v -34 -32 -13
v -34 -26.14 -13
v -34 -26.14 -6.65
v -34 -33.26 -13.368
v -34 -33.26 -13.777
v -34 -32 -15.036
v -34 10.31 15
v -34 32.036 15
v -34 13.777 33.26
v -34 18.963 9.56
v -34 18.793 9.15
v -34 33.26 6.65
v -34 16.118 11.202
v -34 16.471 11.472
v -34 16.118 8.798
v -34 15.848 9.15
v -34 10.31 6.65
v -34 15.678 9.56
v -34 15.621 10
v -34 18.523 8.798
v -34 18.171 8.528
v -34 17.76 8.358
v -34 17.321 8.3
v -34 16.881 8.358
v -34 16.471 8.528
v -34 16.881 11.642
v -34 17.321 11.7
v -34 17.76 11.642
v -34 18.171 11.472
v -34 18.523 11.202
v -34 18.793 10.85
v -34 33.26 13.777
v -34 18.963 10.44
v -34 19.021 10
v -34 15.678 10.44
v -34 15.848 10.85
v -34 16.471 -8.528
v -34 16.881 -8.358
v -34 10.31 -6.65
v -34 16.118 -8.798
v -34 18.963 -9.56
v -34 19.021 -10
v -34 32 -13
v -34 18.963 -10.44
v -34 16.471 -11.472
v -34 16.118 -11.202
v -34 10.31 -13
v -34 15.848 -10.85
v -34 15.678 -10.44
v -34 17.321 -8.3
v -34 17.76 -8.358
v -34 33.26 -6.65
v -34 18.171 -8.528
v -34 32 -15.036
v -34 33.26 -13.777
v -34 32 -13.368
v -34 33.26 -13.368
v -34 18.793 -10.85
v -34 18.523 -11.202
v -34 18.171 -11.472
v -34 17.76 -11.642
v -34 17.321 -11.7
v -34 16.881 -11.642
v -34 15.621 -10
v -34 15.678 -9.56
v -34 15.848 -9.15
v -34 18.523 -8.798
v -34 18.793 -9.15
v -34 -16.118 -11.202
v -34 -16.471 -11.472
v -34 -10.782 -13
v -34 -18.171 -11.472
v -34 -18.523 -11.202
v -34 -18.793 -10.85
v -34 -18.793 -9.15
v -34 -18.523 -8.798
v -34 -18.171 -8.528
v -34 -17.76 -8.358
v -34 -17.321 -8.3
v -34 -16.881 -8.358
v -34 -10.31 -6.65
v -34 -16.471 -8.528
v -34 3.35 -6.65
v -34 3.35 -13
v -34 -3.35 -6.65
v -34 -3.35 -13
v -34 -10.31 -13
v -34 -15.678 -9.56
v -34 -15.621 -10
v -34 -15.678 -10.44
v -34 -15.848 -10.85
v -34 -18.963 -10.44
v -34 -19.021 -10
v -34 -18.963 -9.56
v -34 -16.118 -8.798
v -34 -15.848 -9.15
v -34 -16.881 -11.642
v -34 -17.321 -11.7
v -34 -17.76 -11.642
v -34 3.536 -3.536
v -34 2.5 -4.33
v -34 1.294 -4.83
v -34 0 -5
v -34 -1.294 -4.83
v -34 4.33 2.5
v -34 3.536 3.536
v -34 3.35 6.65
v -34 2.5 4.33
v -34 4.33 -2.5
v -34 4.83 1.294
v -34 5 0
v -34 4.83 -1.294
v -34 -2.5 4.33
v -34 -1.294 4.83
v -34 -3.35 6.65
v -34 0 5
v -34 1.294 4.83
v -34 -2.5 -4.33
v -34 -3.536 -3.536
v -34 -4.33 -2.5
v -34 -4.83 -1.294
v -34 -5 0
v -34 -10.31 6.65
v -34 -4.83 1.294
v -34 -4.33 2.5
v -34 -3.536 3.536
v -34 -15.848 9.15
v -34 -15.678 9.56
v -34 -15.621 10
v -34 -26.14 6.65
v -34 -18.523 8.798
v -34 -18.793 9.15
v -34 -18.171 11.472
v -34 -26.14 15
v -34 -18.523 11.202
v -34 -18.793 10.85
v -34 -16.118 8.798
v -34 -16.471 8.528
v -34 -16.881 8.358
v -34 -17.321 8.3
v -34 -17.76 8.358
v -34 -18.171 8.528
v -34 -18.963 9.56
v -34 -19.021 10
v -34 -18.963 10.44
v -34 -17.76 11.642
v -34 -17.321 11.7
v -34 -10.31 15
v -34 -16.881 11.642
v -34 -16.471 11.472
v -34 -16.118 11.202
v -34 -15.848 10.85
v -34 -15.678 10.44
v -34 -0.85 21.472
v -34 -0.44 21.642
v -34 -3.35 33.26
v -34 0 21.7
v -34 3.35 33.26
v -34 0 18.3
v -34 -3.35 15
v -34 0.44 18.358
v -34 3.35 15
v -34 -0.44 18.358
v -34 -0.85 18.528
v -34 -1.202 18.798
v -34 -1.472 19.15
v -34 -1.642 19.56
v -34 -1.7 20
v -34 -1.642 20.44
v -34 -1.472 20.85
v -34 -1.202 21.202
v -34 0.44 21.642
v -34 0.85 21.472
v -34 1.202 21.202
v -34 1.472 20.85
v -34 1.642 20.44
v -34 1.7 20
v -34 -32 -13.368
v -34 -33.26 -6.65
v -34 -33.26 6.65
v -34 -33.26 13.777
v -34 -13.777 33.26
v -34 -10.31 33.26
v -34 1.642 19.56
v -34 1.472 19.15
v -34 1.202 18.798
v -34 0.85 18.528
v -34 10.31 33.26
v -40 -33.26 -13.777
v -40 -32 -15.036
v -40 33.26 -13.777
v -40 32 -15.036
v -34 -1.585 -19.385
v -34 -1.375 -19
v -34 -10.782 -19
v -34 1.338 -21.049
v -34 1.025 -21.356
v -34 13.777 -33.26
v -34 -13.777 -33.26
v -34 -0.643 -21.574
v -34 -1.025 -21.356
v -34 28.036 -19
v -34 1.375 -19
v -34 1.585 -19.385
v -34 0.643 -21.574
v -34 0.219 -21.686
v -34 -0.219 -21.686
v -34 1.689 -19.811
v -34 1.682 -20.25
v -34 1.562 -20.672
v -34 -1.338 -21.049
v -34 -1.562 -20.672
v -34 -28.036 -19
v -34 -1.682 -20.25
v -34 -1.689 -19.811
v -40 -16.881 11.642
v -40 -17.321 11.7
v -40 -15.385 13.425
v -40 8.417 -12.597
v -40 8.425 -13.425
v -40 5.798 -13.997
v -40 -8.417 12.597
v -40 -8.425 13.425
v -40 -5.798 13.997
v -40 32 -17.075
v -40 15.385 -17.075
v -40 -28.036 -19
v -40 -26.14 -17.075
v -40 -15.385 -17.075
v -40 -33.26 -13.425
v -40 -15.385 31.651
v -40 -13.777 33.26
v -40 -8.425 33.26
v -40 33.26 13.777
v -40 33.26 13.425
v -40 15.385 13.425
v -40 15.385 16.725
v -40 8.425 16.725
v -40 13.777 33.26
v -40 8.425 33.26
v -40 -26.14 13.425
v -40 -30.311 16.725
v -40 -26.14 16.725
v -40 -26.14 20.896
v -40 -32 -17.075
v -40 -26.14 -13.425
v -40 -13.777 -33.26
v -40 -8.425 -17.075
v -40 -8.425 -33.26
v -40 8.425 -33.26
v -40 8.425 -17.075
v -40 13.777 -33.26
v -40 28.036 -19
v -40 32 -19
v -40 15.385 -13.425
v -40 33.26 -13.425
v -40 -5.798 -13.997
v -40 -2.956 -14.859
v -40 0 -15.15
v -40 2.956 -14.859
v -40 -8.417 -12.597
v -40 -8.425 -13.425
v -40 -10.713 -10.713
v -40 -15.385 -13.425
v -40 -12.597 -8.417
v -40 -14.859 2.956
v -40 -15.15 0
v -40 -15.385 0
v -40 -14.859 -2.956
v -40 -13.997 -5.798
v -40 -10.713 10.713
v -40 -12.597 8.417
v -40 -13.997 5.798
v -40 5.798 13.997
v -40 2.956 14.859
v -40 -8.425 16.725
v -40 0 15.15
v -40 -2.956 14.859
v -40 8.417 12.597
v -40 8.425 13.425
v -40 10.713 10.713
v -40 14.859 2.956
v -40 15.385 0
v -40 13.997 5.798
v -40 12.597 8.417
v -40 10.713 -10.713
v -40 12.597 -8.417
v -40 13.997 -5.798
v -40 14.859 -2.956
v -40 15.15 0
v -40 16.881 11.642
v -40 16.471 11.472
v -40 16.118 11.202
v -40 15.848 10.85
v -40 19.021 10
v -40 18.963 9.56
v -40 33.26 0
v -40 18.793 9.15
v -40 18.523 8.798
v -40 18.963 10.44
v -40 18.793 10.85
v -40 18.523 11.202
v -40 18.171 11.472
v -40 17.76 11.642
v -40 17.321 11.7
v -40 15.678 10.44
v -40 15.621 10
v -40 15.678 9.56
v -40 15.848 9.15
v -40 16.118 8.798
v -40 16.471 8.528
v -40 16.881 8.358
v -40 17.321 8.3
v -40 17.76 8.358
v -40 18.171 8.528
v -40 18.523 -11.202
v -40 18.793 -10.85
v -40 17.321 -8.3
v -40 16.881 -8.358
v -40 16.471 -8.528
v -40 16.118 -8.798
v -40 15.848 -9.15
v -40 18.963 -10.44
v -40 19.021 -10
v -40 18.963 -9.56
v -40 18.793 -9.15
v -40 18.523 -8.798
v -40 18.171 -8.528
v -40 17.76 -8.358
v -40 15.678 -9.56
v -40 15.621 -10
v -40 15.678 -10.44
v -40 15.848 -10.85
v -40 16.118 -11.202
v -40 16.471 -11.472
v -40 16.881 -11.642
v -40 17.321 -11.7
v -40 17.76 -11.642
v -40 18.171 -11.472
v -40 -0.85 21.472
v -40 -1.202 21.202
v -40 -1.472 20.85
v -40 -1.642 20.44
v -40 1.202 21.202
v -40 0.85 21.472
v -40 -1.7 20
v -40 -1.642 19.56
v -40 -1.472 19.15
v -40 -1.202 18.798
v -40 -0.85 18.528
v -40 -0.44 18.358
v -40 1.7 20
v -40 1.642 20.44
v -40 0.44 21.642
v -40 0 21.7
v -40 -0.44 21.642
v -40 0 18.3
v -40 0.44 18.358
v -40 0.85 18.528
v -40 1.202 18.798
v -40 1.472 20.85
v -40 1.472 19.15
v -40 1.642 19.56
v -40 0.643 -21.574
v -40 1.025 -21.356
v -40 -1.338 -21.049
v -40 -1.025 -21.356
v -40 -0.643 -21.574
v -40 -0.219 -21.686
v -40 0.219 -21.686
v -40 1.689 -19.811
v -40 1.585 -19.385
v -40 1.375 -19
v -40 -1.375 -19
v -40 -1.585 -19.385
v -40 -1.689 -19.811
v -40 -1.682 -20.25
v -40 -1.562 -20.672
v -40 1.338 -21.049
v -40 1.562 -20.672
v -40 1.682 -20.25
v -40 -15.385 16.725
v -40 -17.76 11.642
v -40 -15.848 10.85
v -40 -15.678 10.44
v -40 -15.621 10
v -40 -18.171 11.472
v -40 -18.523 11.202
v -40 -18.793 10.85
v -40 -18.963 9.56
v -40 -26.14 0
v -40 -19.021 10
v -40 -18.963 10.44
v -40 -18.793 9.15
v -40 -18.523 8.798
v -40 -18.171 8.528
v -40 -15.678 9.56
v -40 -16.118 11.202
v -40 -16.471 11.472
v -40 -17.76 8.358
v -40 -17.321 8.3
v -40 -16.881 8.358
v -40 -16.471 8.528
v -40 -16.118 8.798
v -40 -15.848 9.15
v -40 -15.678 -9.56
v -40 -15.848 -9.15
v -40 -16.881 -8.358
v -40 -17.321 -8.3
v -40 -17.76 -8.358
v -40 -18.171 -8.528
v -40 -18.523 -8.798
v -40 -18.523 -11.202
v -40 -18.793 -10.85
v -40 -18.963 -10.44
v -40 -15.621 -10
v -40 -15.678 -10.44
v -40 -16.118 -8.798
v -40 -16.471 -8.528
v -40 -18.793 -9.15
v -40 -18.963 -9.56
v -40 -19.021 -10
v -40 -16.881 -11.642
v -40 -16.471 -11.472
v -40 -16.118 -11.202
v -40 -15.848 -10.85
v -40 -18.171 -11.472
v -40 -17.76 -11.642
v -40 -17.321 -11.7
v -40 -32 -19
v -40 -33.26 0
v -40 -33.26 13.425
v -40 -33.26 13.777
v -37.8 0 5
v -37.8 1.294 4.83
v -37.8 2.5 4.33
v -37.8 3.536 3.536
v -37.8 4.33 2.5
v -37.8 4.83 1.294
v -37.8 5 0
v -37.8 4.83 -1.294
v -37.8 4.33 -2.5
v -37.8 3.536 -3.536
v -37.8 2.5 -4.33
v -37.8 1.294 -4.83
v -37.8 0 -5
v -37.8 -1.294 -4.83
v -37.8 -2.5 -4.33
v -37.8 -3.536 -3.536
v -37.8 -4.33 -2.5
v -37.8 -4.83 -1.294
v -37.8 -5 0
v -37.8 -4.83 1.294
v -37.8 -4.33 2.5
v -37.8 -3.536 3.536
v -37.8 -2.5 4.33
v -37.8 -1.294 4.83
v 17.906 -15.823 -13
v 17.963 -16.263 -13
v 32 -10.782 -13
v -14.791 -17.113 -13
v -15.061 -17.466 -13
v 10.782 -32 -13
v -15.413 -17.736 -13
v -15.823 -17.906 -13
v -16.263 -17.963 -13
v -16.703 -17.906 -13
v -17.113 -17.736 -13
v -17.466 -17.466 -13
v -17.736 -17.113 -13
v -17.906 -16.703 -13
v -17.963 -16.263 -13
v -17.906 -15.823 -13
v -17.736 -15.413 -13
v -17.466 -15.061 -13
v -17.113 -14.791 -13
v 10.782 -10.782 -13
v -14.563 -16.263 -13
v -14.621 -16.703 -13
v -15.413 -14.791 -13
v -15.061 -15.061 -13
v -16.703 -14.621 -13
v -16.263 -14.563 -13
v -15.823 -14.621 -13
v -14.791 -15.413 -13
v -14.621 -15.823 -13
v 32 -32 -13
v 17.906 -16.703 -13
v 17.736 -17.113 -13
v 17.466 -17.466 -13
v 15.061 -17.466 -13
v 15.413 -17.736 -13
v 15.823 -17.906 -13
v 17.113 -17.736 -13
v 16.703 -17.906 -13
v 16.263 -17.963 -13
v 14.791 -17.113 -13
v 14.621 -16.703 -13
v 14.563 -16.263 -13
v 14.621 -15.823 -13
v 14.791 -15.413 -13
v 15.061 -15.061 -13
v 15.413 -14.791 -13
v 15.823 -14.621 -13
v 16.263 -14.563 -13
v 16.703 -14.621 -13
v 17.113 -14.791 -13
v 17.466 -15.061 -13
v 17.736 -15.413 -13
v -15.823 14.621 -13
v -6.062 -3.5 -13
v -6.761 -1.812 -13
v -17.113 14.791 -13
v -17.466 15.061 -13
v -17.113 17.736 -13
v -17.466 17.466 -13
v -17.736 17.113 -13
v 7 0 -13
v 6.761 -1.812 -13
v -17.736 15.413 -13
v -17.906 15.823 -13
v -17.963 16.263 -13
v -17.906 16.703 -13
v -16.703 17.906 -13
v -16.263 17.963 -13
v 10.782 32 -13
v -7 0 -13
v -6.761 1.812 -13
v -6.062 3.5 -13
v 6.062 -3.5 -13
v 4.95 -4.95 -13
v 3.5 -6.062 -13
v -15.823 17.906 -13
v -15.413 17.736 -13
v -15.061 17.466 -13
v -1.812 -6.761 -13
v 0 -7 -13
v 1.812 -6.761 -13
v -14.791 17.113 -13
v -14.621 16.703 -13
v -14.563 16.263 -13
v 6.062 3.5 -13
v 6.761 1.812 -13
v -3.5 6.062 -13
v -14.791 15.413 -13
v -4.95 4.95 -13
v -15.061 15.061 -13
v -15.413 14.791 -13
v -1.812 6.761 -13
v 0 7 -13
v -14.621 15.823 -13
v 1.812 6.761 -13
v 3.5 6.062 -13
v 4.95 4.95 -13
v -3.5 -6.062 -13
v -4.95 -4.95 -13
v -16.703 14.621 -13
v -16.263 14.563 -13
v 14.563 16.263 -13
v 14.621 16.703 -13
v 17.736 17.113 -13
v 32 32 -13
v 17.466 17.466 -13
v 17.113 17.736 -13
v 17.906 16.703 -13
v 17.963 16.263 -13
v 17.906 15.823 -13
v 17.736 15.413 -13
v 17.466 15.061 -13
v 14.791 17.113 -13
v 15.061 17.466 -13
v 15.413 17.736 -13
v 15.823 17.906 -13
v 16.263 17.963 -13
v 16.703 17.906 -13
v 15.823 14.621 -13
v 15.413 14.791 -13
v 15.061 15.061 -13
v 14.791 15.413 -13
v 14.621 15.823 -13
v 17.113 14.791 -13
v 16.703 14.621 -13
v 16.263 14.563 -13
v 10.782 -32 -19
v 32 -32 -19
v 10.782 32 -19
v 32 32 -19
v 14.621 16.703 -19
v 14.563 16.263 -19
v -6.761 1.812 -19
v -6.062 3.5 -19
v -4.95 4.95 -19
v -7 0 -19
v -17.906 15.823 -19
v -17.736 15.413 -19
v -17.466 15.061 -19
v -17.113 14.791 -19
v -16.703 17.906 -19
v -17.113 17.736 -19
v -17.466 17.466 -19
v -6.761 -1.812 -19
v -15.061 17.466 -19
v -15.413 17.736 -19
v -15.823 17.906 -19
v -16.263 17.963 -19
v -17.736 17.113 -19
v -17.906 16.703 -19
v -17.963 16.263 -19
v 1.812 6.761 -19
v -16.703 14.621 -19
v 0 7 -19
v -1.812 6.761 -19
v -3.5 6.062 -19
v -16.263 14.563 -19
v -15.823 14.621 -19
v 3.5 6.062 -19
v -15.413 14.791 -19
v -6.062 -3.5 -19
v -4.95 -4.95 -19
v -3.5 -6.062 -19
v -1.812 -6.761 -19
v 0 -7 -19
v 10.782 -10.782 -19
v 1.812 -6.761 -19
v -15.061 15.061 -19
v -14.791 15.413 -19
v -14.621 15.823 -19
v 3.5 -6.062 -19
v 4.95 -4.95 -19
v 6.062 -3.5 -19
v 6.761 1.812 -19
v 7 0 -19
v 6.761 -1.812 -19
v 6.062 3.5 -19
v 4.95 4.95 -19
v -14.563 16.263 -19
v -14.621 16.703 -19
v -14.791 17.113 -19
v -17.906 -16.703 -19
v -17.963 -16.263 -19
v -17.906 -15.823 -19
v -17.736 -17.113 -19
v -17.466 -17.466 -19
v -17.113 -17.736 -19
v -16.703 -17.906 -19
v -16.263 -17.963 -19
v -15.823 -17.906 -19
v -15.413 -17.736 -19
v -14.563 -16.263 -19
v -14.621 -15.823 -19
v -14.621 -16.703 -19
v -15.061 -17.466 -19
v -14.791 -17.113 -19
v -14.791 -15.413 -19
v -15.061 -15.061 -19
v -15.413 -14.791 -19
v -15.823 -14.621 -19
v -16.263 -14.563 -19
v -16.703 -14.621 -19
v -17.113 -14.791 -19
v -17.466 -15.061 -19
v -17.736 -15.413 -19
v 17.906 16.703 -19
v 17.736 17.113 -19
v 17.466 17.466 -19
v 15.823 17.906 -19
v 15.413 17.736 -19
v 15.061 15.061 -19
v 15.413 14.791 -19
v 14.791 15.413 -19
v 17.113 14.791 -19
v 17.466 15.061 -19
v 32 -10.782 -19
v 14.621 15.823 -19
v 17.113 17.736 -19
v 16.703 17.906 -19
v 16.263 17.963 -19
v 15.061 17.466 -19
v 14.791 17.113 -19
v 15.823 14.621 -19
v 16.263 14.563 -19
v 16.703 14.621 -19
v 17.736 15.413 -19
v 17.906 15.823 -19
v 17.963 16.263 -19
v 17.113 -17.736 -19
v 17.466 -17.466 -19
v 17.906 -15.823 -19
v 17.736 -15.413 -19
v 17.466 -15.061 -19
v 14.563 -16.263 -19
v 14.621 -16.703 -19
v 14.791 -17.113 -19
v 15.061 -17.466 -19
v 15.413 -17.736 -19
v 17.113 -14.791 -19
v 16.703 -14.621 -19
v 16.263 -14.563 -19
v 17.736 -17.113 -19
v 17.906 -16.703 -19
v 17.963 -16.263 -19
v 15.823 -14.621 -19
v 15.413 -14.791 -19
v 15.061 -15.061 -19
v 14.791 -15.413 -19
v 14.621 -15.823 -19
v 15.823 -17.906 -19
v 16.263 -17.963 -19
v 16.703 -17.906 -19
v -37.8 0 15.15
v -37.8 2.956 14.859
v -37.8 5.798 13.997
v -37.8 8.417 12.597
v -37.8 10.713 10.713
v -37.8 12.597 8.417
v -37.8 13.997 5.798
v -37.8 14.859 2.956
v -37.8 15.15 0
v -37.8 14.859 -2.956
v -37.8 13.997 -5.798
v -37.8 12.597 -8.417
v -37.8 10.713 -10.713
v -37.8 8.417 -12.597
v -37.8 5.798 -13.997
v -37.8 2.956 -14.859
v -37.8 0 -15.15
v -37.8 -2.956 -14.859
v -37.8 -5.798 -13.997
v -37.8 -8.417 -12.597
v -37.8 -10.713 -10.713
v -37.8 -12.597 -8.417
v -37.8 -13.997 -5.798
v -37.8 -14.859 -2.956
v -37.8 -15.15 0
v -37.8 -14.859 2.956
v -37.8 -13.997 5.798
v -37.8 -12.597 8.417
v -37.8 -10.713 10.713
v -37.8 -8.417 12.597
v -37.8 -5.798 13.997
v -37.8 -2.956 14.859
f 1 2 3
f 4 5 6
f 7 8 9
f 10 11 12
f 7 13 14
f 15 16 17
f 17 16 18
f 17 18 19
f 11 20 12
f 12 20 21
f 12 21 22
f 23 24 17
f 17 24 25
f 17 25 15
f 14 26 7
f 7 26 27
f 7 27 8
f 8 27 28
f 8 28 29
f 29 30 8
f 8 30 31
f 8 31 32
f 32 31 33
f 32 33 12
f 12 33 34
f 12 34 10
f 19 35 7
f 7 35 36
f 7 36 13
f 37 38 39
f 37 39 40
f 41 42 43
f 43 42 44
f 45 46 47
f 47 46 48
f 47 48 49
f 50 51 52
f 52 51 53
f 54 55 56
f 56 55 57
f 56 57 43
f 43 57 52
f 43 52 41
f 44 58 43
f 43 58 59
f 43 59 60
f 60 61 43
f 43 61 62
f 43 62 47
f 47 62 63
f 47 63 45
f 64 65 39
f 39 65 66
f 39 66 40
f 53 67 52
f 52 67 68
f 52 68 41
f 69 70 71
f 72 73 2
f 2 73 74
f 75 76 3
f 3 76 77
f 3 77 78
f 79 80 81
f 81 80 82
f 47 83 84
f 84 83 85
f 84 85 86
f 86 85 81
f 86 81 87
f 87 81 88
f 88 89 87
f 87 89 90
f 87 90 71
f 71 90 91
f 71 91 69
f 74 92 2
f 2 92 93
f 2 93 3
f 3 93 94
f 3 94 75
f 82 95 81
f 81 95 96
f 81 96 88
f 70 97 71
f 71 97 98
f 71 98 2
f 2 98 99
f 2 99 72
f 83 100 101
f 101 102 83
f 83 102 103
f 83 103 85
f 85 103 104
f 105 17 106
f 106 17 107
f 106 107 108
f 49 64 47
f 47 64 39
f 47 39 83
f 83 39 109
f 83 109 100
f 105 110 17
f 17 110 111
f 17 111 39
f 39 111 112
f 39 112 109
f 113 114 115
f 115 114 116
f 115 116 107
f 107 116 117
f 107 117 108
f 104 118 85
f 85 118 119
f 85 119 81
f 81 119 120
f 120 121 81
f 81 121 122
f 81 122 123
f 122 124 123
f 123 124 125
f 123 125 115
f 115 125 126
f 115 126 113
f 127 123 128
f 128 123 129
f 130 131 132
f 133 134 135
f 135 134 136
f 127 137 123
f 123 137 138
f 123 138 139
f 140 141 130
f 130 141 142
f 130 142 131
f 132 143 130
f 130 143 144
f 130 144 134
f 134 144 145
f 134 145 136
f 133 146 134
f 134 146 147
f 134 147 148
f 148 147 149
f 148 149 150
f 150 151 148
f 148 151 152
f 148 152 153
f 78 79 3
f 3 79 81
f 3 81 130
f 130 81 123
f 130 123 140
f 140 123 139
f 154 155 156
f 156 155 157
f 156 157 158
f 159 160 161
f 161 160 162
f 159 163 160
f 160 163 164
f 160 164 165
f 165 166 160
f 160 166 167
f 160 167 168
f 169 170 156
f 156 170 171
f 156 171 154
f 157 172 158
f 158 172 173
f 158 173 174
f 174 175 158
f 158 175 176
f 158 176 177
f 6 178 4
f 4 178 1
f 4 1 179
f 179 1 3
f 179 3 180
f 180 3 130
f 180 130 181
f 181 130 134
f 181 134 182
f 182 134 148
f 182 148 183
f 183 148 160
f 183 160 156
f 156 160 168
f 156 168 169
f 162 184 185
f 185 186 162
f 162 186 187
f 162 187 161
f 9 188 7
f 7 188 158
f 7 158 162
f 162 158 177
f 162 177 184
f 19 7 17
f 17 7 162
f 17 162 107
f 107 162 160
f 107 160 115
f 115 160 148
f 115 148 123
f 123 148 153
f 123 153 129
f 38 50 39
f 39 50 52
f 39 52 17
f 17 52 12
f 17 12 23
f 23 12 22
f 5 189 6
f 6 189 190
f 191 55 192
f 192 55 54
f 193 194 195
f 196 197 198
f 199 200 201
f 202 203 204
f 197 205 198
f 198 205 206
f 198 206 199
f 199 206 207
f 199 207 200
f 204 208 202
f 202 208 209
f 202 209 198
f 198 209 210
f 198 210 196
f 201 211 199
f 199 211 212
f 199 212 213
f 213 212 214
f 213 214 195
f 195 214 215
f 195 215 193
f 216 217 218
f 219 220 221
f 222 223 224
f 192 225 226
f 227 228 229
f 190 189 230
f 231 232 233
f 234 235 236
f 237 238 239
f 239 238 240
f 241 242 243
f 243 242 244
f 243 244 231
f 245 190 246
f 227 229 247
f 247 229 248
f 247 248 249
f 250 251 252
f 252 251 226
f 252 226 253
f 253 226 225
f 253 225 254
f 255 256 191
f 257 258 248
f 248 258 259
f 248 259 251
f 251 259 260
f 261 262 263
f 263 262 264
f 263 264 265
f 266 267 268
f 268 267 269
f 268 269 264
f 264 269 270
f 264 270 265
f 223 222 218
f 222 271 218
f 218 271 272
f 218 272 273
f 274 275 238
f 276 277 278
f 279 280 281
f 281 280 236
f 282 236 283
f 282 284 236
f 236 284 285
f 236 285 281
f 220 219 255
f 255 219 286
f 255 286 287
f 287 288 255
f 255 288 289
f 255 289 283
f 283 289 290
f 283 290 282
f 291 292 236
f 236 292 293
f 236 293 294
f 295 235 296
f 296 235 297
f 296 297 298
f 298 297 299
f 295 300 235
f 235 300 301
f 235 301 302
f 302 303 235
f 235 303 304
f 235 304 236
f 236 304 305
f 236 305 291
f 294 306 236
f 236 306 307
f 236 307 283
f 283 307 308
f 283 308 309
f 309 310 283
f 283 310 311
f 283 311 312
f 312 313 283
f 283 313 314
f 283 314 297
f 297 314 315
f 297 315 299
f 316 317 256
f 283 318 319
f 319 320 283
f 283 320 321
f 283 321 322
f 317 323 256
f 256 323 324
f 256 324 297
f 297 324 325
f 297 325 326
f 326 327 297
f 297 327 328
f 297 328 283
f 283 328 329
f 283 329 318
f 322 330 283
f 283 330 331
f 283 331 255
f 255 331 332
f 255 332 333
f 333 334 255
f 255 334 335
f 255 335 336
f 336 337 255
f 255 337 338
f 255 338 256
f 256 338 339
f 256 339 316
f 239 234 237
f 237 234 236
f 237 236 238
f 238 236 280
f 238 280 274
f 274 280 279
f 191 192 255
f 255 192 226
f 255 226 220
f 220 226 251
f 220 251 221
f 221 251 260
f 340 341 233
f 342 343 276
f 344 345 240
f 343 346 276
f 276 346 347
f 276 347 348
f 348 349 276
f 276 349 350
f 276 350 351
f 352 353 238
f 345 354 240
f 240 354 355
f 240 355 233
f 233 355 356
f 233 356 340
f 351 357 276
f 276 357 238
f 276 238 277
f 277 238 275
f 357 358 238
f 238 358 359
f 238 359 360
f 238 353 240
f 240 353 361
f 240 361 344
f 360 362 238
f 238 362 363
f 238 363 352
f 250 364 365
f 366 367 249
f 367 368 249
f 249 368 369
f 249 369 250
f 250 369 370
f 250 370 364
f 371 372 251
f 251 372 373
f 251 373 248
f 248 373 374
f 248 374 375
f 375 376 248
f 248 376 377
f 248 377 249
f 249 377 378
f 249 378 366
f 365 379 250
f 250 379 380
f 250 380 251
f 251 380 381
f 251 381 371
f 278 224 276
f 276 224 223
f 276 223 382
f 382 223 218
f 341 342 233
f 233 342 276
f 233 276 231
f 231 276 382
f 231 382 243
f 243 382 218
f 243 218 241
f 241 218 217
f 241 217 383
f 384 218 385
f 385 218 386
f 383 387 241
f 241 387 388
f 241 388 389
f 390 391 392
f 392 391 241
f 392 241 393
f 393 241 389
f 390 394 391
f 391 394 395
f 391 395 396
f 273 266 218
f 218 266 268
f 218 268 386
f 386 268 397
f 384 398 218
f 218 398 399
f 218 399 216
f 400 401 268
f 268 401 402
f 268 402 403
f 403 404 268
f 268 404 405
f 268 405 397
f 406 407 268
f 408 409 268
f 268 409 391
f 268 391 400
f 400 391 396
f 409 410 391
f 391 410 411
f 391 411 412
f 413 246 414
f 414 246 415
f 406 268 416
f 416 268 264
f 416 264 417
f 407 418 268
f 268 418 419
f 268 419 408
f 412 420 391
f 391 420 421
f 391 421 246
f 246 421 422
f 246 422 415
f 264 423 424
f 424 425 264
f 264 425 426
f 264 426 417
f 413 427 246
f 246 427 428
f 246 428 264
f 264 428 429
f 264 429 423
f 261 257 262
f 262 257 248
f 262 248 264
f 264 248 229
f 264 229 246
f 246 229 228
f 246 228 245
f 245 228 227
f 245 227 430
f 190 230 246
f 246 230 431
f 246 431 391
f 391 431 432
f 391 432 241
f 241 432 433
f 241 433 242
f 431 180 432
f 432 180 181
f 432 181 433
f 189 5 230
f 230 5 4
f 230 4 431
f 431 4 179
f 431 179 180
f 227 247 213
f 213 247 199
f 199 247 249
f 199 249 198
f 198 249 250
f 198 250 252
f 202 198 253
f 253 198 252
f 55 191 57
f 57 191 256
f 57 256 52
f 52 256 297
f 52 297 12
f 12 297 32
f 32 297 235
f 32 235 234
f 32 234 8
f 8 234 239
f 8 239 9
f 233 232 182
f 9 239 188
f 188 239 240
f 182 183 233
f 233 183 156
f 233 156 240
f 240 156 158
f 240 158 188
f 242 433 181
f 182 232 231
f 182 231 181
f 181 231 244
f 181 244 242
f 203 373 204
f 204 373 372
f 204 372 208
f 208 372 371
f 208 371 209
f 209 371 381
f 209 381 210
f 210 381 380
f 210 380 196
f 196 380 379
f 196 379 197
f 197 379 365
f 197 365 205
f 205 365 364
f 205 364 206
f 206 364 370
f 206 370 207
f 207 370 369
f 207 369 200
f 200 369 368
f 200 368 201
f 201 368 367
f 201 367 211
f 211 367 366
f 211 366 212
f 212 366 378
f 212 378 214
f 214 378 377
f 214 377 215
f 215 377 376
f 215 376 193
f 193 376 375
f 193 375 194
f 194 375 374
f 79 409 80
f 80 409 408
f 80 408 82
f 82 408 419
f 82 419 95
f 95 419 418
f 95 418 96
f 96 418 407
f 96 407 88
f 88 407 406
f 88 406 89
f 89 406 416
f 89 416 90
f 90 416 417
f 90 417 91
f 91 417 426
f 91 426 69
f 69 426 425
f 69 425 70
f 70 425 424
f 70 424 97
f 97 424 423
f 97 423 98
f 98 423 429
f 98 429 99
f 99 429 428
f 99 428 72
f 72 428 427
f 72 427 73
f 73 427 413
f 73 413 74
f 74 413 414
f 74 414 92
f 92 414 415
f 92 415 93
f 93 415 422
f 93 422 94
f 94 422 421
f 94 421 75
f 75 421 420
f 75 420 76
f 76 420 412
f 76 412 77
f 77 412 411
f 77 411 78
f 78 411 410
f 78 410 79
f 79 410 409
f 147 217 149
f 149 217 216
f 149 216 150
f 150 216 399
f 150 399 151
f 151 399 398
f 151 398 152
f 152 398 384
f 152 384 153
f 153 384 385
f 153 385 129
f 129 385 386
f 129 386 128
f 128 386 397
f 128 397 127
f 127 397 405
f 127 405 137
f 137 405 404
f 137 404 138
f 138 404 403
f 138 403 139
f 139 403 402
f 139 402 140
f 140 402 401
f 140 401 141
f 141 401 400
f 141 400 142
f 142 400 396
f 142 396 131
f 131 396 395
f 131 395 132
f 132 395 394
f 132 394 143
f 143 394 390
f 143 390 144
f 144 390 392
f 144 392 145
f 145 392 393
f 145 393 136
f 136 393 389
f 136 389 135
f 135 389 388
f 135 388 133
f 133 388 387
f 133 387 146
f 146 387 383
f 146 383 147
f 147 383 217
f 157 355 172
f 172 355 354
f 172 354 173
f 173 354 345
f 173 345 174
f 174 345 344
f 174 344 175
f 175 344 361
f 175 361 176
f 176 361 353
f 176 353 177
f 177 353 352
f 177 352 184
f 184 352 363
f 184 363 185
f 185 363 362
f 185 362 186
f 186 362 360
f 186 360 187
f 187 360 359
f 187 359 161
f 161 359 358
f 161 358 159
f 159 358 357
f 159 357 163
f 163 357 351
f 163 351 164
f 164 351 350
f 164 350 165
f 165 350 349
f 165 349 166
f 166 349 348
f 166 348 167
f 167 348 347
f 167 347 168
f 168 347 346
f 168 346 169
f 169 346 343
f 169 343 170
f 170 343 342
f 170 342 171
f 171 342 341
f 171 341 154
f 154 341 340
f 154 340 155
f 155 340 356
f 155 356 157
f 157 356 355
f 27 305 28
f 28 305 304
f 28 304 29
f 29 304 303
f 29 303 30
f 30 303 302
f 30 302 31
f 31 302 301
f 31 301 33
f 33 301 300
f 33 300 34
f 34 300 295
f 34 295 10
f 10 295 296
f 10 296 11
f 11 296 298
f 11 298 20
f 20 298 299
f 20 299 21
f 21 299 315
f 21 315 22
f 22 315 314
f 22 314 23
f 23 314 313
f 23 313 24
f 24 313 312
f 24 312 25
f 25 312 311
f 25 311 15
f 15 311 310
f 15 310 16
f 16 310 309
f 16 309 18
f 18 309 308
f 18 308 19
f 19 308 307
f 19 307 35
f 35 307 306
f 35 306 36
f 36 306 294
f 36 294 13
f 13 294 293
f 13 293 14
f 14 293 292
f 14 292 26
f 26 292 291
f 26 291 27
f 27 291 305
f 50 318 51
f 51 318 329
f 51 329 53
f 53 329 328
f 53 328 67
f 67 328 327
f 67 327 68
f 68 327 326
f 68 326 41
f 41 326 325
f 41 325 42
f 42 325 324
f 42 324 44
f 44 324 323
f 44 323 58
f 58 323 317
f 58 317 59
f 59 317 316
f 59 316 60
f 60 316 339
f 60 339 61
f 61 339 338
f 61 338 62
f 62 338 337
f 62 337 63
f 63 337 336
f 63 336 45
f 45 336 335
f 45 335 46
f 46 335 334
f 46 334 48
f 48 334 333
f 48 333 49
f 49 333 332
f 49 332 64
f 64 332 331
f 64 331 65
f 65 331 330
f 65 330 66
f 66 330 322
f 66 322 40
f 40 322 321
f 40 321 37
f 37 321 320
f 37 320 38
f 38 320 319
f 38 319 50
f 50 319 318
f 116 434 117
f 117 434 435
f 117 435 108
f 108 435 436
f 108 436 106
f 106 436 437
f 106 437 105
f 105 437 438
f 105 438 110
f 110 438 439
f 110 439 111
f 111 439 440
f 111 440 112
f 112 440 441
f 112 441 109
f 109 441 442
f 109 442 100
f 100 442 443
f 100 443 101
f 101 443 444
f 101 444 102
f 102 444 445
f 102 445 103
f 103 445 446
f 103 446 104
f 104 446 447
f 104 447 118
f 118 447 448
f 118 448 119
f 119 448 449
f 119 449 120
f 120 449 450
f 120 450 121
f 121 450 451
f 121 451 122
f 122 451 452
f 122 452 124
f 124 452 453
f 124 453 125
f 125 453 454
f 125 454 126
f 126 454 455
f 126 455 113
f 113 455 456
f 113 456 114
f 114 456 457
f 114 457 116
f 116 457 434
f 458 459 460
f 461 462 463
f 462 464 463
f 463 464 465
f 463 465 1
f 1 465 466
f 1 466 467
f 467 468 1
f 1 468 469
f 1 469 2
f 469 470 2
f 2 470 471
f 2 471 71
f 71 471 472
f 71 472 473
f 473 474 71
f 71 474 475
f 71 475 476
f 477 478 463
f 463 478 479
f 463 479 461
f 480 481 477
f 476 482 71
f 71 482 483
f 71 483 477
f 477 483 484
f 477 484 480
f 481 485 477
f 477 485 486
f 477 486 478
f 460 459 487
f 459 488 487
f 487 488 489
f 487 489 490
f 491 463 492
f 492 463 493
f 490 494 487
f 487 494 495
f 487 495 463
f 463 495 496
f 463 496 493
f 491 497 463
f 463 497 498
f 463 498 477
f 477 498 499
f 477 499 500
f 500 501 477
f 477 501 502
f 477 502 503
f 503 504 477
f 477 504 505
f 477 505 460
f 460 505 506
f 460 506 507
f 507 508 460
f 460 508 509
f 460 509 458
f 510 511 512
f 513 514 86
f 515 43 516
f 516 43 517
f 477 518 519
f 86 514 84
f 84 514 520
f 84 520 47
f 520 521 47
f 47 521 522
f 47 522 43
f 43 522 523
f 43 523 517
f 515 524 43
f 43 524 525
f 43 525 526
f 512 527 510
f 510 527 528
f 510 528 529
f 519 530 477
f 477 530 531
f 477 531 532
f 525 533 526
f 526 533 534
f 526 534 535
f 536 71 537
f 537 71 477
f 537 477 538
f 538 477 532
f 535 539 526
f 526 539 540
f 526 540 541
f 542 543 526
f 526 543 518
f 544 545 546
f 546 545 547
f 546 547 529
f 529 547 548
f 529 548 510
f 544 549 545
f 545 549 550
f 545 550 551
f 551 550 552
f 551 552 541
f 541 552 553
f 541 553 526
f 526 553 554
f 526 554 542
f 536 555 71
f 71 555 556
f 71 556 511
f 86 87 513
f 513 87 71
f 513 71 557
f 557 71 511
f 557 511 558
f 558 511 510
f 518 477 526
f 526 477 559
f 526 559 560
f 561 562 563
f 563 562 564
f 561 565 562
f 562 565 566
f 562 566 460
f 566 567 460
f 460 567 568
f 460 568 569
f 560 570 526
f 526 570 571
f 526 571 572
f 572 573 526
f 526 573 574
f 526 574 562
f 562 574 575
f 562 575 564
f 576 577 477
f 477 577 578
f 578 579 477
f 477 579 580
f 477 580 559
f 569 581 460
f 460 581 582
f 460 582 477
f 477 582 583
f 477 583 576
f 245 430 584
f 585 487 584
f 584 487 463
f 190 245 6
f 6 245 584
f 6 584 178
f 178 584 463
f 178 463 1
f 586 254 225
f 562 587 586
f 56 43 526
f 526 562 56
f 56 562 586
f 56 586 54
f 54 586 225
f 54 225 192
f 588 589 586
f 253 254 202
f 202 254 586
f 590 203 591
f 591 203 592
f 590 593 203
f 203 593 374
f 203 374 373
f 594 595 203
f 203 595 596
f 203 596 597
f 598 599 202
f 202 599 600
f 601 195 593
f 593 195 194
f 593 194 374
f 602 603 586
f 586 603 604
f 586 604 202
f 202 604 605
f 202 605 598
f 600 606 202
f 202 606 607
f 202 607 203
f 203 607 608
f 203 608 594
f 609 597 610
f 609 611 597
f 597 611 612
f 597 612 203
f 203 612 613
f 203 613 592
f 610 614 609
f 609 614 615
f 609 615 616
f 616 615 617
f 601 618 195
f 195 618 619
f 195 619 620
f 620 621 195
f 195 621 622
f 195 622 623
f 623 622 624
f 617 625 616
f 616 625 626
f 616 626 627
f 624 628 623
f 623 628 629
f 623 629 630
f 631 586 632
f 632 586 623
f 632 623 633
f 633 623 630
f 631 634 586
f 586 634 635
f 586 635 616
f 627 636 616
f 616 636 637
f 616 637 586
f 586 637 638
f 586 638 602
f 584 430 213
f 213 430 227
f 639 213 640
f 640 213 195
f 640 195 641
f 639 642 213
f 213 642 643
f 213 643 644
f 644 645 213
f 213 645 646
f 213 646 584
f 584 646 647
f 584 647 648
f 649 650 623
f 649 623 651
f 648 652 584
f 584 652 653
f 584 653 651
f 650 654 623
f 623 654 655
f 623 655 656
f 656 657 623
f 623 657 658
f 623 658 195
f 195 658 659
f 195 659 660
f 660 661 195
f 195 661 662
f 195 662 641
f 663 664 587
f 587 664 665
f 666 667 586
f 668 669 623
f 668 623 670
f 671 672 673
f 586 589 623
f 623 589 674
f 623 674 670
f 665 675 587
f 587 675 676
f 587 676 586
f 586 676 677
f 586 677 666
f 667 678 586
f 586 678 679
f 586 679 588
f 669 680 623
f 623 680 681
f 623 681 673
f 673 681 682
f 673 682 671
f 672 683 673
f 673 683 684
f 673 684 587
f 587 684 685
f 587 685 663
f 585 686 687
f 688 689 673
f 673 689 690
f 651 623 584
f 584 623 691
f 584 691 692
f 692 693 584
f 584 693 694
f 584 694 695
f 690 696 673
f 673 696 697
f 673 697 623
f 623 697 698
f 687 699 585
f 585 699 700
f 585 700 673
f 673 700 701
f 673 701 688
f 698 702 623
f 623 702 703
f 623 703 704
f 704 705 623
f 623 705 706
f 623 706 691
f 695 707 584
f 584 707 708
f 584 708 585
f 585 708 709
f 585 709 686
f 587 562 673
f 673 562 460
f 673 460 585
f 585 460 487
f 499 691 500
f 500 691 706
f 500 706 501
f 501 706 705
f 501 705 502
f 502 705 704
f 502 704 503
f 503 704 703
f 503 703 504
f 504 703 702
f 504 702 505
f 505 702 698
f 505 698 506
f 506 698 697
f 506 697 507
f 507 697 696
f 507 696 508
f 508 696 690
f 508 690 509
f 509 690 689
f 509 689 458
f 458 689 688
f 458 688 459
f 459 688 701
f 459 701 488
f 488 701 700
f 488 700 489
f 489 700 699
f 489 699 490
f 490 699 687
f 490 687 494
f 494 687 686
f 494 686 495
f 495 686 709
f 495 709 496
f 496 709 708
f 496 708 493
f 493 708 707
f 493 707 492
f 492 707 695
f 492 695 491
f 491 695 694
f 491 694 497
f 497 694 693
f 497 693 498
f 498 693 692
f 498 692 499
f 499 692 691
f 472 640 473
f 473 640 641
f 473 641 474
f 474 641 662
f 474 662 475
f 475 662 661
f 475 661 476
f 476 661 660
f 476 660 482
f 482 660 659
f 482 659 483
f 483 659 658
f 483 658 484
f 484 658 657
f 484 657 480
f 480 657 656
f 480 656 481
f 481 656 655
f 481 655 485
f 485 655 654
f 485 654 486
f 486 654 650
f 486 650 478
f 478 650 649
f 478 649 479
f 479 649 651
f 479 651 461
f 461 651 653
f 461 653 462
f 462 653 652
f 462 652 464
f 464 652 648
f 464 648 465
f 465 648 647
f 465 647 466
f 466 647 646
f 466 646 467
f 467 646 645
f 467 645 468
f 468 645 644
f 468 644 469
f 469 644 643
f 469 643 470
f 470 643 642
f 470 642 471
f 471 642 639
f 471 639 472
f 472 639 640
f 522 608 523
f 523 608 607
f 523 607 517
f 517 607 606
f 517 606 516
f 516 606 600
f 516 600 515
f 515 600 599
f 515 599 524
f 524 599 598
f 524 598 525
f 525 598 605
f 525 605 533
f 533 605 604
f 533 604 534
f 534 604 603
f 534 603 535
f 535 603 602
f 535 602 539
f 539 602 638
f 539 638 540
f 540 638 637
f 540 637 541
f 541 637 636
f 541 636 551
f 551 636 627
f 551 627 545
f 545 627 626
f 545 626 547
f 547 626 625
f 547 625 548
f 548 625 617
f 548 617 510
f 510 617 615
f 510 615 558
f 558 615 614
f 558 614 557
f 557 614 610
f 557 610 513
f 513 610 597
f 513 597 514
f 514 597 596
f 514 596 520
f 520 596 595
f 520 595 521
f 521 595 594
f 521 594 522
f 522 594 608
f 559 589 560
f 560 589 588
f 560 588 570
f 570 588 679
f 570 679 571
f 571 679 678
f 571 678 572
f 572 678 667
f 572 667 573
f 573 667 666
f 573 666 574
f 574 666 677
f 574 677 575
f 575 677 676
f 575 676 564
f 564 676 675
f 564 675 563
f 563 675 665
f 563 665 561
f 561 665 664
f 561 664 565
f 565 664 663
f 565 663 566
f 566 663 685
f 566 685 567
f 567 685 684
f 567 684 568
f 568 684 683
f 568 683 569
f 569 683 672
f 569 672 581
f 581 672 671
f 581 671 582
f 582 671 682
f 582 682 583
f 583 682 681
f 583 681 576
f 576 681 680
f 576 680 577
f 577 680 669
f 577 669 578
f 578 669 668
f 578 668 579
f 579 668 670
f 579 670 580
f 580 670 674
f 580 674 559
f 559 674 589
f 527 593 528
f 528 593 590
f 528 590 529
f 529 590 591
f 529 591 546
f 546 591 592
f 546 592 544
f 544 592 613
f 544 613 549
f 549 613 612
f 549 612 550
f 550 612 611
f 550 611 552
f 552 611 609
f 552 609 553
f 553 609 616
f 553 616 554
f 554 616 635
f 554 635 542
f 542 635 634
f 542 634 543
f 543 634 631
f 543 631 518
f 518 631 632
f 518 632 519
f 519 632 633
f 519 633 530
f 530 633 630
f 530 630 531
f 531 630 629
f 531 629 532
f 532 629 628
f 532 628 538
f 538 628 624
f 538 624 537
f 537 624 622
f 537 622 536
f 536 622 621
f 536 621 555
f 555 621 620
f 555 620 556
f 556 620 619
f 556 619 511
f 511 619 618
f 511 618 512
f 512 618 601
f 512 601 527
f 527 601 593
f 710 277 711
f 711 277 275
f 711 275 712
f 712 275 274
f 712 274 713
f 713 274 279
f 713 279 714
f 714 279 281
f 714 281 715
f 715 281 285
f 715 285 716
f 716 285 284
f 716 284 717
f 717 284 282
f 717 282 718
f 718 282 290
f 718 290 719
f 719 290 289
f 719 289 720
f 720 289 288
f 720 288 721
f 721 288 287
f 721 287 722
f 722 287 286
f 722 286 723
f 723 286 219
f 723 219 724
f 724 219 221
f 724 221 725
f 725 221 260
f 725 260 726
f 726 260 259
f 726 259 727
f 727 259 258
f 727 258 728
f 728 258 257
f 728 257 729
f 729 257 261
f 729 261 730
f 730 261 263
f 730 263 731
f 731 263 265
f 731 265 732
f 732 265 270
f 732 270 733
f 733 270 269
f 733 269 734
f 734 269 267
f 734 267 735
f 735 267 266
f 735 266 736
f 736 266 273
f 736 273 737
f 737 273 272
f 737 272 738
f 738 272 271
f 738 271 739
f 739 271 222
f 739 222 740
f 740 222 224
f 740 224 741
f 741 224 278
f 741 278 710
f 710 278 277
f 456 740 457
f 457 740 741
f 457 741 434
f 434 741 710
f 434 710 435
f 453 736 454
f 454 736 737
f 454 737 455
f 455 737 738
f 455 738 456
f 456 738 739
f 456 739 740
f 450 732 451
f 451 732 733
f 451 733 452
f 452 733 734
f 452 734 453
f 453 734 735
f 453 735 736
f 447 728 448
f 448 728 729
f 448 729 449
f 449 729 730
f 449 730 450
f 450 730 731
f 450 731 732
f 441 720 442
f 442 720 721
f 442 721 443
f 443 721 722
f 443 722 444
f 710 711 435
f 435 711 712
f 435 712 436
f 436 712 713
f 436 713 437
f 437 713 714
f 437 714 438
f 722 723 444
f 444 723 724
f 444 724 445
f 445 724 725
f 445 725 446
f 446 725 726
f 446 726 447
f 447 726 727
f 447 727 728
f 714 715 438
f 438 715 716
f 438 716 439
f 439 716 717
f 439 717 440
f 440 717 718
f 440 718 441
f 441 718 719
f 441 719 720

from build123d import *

# Parameters (mm, degrees)
SK_ROLL_PLATE_R         = 1.7
SK_ROLL_PLATE_R_2       = 5
ROLL_PLATE_DEPTH        = 6
SK_YAW_PLATE_W          = 72
SK_YAW_PLATE_H          = 64
SK_YAW_PLATE_R          = 1.7
SK_YAW_PLATE_R_2        = 7
YAW_PLATE_DEPTH         = 6
SK_ROLL_PILOT_RECESS_R  = 15.15
ROLL_PILOT_RECESS_DEPTH = 2.2


with BuildPart() as part:
    # SK_Roll_Plate → Roll_Plate (new body)
    with BuildSketch(Plane(origin=(-40, 0, 0), x_dir=(0, 0, -1), z_dir=(1, 0, 0))):
        Polygon((-13.776603565, -33.25966317), (-33.25966317, -13.776603565), (-33.25966317, 13.776603565), (-13.776603565, 33.25966317), (13.776603565, 33.25966317), (33.25966317, 13.776603565), (33.25966317, -13.776603565), (13.776603565, -33.25966317), align=None)
        with Locations((20, 0)):
            Circle(SK_ROLL_PLATE_R, mode=Mode.SUBTRACT)
        with Locations((10, -17.320508076)):
            Circle(SK_ROLL_PLATE_R, mode=Mode.SUBTRACT)
        with Locations((-10, -17.320508076)):
            Circle(SK_ROLL_PLATE_R, mode=Mode.SUBTRACT)
        with Locations((-20, 0)):
            Circle(SK_ROLL_PLATE_R, mode=Mode.SUBTRACT)
        with Locations((-10, 17.320508076)):
            Circle(SK_ROLL_PLATE_R, mode=Mode.SUBTRACT)
        with Locations((10, 17.320508076)):
            Circle(SK_ROLL_PLATE_R, mode=Mode.SUBTRACT)
        Circle(SK_ROLL_PLATE_R_2, mode=Mode.SUBTRACT)
    extrude(amount=ROLL_PLATE_DEPTH)

    # SK_Yaw_Plate → Yaw_Plate (add)
    with BuildSketch(Plane.XY.offset(-19)):
        with Locations((-4, 0)):
            Rectangle(SK_YAW_PLATE_W, SK_YAW_PLATE_H)
        with Locations((16.263455967, -16.263455967)):
            Circle(SK_YAW_PLATE_R, mode=Mode.SUBTRACT)
        with Locations((-16.263455967, -16.263455967)):
            Circle(SK_YAW_PLATE_R, mode=Mode.SUBTRACT)
        with Locations((-16.263455967, 16.263455967)):
            Circle(SK_YAW_PLATE_R, mode=Mode.SUBTRACT)
        with Locations((16.263455967, 16.263455967)):
            Circle(SK_YAW_PLATE_R, mode=Mode.SUBTRACT)
        Circle(SK_YAW_PLATE_R_2, mode=Mode.SUBTRACT)
    extrude(amount=YAW_PLATE_DEPTH)

    # SK_Roll_Pilot_Recess → Roll_Pilot_Recess (cut)
    with BuildSketch(Plane(origin=(-40, 0, 0), x_dir=(0, 0, -1), z_dir=(1, 0, 0))):
        Circle(SK_ROLL_PILOT_RECESS_R)
    extrude(amount=ROLL_PILOT_RECESS_DEPTH, mode=Mode.SUBTRACT)


solid = part.part
